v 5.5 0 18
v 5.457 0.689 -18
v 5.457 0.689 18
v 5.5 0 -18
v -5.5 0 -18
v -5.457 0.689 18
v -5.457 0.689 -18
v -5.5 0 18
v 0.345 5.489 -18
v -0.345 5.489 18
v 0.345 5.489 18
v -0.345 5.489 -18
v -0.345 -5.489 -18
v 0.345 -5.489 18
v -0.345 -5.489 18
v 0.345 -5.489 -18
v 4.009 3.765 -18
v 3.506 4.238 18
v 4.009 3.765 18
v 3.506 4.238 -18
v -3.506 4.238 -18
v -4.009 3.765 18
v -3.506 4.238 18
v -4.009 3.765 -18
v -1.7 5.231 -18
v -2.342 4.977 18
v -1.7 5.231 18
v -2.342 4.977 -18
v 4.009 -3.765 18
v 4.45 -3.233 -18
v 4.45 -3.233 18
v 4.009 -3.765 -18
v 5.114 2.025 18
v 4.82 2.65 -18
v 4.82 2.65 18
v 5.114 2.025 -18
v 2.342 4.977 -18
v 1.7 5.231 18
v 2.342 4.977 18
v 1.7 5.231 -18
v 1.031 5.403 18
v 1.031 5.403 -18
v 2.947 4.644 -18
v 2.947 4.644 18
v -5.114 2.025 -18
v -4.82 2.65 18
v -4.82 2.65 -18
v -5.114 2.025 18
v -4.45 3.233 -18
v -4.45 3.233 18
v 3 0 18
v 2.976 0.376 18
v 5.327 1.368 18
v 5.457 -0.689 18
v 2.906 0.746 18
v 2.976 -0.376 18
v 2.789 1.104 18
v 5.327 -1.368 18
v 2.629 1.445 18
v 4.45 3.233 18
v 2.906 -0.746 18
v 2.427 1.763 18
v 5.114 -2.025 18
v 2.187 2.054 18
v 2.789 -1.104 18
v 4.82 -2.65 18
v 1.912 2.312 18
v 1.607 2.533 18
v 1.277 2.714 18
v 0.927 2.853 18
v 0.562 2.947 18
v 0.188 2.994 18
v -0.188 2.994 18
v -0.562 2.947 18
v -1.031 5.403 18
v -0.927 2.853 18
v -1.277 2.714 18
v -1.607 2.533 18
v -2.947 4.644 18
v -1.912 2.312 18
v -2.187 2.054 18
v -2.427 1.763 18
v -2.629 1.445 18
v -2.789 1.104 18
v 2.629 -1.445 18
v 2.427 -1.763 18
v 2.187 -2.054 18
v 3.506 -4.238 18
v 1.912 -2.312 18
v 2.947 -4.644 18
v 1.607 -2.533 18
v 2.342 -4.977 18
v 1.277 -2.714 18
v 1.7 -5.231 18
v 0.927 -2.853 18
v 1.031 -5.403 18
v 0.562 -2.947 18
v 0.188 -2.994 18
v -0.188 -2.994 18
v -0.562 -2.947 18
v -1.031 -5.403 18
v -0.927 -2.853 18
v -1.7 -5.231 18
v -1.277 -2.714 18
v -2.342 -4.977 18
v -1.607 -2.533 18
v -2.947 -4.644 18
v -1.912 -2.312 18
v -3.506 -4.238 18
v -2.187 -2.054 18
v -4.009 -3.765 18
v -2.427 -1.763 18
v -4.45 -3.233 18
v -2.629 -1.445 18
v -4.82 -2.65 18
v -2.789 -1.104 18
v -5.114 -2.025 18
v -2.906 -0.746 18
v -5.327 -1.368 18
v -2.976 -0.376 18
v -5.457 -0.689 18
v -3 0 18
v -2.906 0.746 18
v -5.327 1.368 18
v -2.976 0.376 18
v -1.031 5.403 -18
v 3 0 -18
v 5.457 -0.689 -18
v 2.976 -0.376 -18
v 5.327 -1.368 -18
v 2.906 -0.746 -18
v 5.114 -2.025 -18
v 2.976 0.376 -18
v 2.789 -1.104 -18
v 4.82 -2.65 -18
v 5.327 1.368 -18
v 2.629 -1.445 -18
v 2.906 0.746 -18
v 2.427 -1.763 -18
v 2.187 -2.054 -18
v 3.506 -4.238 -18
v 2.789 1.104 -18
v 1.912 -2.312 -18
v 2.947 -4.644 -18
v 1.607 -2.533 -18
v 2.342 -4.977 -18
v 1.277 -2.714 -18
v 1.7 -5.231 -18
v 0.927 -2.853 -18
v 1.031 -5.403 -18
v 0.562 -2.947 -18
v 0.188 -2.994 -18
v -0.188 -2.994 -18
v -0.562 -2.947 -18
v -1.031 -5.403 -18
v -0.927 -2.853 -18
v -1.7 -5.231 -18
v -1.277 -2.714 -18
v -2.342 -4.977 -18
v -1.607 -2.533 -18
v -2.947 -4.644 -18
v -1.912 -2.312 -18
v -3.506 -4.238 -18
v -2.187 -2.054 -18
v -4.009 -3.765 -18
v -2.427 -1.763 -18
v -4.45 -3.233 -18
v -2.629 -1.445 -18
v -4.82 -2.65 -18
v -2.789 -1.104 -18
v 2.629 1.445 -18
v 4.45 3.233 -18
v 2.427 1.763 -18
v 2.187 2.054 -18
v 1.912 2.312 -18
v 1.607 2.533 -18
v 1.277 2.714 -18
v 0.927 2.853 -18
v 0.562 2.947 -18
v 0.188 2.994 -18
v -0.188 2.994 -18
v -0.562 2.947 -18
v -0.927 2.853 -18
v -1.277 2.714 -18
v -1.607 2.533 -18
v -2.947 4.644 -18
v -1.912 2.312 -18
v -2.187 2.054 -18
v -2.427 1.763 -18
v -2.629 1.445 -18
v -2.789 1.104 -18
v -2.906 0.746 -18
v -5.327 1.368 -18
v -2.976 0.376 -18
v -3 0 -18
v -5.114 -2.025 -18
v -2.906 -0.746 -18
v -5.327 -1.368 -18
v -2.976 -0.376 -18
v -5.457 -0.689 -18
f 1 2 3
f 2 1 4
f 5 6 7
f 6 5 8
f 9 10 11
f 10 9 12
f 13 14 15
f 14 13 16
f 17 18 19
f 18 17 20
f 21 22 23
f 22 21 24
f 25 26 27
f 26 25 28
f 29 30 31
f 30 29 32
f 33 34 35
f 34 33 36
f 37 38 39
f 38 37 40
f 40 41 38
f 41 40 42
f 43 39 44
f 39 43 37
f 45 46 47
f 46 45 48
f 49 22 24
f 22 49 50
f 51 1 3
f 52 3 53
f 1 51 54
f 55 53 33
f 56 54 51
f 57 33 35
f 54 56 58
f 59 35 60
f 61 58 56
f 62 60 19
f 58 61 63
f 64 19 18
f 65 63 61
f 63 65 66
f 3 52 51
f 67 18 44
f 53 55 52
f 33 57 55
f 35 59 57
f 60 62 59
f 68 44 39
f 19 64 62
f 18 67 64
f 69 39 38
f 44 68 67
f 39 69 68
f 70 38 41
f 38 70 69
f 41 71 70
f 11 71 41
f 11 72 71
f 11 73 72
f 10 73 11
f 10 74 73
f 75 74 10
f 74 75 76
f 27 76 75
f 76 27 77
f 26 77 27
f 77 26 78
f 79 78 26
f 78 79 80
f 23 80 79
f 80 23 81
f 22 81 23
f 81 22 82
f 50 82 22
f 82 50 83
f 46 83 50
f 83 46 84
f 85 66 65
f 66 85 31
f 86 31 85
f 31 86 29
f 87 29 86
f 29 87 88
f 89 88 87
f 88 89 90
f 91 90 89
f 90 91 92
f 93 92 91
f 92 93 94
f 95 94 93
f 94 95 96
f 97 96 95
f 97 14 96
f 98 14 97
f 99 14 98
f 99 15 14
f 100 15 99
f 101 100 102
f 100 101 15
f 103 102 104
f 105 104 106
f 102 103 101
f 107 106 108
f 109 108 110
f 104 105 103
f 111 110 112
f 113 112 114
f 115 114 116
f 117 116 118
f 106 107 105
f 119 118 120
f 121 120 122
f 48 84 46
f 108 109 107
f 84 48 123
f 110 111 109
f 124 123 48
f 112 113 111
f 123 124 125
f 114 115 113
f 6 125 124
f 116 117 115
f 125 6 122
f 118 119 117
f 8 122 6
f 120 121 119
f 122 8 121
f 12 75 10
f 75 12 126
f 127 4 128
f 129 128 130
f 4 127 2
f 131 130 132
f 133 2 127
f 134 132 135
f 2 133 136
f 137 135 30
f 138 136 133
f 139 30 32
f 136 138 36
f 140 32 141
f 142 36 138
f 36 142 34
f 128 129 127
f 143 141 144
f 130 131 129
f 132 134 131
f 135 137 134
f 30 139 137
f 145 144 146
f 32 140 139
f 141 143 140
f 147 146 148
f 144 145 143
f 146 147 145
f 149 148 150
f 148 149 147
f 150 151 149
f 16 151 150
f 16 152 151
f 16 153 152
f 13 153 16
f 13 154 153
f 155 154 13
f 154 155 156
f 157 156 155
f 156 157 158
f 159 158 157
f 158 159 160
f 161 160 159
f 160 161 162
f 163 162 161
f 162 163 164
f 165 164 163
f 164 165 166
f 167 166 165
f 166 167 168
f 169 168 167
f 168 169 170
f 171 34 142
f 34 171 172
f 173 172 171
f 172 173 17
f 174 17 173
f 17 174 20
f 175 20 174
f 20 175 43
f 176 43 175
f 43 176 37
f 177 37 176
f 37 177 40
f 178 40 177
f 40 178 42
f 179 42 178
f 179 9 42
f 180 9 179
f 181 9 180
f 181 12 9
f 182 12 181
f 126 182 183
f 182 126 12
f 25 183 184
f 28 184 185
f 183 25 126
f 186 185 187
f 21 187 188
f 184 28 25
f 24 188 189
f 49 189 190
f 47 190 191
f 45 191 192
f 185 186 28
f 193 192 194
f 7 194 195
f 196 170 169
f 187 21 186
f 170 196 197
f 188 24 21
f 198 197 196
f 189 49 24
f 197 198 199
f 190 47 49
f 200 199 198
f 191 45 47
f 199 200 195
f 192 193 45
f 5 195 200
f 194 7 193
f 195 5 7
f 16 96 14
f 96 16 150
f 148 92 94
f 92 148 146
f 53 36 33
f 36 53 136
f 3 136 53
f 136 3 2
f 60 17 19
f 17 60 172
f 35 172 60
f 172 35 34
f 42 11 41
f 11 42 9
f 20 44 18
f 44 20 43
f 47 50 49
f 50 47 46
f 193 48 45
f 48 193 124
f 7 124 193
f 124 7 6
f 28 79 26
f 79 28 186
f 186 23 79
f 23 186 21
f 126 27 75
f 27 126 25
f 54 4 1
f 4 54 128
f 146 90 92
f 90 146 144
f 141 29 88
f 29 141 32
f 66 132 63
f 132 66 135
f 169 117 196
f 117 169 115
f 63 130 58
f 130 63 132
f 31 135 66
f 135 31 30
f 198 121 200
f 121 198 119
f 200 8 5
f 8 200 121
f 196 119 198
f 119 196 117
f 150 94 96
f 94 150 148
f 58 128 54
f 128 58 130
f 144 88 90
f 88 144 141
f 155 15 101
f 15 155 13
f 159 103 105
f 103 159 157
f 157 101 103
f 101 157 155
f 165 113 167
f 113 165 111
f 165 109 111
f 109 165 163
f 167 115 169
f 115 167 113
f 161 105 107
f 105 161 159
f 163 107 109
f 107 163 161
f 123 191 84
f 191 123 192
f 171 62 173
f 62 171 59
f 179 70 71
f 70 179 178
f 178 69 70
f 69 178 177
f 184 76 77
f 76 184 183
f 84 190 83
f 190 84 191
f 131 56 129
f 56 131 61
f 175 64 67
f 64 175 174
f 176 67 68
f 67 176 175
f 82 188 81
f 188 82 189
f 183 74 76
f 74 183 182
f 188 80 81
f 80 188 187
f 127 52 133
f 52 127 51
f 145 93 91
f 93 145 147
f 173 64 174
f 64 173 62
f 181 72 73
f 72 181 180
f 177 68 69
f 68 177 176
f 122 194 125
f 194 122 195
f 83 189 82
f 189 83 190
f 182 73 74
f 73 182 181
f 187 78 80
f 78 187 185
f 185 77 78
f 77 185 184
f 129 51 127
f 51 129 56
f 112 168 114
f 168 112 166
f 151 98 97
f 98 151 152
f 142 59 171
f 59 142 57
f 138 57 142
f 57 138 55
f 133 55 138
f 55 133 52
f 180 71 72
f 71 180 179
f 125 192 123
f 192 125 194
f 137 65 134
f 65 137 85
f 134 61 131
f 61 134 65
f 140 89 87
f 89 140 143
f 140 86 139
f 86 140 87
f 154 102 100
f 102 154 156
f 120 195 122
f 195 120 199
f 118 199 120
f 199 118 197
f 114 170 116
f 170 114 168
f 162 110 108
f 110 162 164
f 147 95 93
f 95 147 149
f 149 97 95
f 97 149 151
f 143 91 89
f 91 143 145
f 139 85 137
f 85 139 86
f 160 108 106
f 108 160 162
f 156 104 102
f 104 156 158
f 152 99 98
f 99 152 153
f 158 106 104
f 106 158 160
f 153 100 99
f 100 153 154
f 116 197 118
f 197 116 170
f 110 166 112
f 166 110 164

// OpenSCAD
$fn = 50;


difference() {
	union() {
		translate(v = [0, 0, -18.0000000000]) {
			cylinder(h = 36, r = 5.5000000000);
		}
	}
	union() {
		translate(v = [0, 0, -100.0000000000]) {
			cylinder(h = 200, r = 3);
		}
	}
}
